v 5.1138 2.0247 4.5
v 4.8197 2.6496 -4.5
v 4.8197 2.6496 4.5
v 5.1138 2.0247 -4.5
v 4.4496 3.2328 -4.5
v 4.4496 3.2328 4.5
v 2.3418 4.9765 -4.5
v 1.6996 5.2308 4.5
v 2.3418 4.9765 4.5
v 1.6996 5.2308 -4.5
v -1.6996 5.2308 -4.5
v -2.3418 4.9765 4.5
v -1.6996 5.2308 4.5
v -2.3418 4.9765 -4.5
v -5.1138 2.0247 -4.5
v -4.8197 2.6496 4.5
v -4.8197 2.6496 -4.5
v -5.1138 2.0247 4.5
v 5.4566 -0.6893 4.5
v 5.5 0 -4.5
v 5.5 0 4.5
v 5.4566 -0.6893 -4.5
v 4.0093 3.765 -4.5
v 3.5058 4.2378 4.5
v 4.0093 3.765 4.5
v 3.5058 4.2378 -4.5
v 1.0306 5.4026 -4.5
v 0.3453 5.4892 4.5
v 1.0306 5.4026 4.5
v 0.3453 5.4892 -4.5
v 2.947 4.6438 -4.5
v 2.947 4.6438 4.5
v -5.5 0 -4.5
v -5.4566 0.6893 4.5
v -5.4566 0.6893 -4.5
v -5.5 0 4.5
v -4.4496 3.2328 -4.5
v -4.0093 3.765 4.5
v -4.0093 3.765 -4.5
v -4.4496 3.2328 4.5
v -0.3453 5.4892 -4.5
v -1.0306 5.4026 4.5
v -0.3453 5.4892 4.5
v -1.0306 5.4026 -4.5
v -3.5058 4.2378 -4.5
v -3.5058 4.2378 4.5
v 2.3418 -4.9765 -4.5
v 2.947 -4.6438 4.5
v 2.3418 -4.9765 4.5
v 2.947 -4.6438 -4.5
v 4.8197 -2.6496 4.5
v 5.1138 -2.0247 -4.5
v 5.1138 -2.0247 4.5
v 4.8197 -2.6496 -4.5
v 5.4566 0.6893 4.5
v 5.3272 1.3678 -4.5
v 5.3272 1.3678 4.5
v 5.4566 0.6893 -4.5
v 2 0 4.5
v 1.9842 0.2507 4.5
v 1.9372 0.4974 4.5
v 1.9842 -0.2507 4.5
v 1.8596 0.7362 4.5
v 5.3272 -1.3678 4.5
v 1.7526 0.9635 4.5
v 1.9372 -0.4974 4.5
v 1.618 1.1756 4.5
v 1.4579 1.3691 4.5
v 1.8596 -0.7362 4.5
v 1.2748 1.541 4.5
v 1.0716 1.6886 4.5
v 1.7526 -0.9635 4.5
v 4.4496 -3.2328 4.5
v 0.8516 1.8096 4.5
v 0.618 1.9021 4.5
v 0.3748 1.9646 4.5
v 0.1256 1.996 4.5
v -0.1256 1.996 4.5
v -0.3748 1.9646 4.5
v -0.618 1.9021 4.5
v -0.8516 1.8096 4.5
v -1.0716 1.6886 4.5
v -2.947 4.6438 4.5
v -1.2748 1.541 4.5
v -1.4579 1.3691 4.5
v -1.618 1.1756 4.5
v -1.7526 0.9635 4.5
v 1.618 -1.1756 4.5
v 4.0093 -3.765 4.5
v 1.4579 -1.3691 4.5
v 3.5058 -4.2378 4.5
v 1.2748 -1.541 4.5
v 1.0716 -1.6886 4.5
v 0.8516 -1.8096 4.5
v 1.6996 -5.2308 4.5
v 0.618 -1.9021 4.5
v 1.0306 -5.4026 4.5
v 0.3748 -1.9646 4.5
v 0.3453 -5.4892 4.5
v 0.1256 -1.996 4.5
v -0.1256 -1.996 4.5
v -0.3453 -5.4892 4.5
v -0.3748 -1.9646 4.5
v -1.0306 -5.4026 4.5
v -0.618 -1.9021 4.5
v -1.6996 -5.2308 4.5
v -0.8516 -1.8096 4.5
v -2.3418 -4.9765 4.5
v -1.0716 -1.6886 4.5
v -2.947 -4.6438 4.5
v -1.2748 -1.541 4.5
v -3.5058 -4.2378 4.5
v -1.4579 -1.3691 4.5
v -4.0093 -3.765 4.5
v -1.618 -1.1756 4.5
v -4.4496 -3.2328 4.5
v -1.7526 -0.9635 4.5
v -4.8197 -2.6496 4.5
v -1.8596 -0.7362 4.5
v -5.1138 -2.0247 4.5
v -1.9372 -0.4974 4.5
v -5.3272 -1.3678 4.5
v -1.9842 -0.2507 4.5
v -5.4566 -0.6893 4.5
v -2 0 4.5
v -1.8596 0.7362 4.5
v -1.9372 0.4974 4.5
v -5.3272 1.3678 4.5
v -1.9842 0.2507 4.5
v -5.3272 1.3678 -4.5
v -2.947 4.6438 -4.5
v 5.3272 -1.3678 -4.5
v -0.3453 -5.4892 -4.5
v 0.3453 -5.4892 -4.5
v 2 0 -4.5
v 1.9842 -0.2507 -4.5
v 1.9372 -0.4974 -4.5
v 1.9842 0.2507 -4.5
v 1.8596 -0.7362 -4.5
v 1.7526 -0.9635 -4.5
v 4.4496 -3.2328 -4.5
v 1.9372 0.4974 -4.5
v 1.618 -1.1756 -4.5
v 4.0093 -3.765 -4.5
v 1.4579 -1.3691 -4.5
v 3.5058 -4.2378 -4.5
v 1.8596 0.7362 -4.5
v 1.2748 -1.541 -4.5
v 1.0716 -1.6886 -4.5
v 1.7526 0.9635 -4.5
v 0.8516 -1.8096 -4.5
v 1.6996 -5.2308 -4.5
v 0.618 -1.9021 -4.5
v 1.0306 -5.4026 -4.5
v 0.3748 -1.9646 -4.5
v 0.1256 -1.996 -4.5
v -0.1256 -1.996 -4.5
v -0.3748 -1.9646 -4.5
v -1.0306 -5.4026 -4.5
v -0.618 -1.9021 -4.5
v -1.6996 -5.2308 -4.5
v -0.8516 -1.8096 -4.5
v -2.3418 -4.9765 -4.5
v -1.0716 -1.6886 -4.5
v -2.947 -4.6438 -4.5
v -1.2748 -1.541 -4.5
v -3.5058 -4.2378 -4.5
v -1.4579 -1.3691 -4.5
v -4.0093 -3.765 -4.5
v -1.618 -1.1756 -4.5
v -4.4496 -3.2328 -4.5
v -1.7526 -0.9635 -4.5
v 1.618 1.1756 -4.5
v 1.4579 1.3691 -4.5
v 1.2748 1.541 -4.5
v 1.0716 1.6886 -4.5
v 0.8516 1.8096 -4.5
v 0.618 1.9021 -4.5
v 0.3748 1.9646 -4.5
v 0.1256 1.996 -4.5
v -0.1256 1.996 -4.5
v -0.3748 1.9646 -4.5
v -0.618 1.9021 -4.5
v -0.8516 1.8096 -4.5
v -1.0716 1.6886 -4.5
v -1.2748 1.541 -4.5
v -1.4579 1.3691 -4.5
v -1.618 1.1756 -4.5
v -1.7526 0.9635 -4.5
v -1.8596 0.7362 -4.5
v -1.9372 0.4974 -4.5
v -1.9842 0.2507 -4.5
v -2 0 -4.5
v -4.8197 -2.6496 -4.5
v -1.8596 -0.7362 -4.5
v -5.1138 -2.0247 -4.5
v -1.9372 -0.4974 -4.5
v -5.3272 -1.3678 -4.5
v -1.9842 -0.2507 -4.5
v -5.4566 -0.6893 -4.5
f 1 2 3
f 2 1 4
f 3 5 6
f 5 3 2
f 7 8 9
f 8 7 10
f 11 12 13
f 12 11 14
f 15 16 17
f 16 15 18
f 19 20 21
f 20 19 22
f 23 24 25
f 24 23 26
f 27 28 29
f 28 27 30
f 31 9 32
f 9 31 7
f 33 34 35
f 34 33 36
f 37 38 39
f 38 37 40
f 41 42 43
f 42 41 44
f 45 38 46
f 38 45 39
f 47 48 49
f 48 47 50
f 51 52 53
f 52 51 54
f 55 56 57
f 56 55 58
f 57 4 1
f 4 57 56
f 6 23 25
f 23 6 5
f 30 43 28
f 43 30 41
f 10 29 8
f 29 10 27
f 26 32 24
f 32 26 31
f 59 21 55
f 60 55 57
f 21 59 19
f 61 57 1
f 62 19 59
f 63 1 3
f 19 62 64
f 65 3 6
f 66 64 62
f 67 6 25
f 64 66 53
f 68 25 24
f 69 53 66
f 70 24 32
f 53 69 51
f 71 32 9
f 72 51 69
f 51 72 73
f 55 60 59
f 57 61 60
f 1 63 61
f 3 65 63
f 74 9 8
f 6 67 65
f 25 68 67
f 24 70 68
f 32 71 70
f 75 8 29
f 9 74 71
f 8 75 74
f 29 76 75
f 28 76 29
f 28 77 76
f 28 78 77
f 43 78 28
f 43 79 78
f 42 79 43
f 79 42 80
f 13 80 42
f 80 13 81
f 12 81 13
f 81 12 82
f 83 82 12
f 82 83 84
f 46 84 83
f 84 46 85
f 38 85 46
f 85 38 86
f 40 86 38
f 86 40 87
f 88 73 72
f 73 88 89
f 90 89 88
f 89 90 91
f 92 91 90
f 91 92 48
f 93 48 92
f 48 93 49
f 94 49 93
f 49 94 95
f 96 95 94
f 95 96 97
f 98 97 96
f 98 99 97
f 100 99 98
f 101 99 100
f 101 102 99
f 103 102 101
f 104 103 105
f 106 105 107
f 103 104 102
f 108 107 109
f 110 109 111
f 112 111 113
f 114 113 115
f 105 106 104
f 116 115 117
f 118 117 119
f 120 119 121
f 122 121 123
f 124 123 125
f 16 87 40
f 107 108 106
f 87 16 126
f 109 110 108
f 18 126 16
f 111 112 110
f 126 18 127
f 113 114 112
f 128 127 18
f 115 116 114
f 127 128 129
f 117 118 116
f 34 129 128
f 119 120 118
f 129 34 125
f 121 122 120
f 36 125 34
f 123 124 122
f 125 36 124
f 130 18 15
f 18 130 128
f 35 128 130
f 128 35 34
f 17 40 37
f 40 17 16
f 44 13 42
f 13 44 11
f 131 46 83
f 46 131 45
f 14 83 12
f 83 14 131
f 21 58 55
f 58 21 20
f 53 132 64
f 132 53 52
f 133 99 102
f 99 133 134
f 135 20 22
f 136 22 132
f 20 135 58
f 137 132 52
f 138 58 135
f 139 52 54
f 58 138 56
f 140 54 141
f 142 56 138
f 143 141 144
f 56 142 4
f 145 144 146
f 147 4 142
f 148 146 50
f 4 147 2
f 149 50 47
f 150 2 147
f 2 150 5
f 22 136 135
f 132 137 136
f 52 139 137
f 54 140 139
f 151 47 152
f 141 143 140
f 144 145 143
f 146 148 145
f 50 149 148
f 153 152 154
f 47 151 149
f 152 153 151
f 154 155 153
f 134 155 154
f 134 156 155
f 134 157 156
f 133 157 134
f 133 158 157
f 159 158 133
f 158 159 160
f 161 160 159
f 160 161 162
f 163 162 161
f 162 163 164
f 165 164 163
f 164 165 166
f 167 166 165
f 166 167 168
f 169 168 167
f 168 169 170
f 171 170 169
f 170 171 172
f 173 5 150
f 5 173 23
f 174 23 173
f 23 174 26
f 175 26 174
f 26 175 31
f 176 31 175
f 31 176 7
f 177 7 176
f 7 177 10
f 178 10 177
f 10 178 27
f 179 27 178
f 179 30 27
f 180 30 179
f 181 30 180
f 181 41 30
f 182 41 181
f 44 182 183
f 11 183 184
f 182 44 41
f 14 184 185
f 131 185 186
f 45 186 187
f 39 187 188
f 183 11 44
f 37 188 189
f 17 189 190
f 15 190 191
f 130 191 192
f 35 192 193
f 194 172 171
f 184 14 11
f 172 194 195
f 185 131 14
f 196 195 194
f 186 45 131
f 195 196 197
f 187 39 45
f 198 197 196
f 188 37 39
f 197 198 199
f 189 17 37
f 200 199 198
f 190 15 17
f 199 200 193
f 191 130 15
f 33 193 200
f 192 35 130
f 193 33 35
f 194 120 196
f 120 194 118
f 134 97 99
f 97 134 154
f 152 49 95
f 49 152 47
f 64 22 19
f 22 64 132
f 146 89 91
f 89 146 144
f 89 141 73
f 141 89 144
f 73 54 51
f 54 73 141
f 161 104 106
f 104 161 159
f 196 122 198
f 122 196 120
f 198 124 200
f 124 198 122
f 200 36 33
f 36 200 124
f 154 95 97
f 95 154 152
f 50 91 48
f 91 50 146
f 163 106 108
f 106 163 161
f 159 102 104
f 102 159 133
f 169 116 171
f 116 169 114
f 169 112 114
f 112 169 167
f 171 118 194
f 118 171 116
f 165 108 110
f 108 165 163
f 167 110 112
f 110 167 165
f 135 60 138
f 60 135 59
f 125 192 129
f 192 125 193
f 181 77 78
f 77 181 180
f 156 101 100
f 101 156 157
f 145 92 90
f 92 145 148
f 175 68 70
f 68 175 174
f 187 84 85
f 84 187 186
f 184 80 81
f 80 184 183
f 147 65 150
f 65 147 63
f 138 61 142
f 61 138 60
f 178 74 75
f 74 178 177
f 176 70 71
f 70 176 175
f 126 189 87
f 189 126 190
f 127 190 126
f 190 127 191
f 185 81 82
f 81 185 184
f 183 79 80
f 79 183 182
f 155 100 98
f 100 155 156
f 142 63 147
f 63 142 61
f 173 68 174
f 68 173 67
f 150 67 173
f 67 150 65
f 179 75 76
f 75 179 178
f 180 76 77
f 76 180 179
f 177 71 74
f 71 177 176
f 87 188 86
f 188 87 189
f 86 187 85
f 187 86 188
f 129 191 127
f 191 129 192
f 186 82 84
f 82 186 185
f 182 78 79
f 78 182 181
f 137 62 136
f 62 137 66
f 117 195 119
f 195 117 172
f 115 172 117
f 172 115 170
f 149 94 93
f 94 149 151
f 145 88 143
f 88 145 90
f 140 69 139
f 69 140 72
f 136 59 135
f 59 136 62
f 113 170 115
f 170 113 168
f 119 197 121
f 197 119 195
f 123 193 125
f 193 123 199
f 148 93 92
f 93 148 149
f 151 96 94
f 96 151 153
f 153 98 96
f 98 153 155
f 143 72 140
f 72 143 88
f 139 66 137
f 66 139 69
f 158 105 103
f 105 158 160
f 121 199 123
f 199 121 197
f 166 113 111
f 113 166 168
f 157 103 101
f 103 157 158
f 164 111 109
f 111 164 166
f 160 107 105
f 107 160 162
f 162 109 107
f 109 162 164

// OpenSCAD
$fn = 50;


difference() {
	union() {
		translate(v = [0, 0, -4.5000000000]) {
			cylinder(h = 9, r = 5.5000000000);
		}
	}
	union() {
		translate(v = [0, 0, -100.0000000000]) {
			cylinder(h = 200, r = 2);
		}
	}
}
